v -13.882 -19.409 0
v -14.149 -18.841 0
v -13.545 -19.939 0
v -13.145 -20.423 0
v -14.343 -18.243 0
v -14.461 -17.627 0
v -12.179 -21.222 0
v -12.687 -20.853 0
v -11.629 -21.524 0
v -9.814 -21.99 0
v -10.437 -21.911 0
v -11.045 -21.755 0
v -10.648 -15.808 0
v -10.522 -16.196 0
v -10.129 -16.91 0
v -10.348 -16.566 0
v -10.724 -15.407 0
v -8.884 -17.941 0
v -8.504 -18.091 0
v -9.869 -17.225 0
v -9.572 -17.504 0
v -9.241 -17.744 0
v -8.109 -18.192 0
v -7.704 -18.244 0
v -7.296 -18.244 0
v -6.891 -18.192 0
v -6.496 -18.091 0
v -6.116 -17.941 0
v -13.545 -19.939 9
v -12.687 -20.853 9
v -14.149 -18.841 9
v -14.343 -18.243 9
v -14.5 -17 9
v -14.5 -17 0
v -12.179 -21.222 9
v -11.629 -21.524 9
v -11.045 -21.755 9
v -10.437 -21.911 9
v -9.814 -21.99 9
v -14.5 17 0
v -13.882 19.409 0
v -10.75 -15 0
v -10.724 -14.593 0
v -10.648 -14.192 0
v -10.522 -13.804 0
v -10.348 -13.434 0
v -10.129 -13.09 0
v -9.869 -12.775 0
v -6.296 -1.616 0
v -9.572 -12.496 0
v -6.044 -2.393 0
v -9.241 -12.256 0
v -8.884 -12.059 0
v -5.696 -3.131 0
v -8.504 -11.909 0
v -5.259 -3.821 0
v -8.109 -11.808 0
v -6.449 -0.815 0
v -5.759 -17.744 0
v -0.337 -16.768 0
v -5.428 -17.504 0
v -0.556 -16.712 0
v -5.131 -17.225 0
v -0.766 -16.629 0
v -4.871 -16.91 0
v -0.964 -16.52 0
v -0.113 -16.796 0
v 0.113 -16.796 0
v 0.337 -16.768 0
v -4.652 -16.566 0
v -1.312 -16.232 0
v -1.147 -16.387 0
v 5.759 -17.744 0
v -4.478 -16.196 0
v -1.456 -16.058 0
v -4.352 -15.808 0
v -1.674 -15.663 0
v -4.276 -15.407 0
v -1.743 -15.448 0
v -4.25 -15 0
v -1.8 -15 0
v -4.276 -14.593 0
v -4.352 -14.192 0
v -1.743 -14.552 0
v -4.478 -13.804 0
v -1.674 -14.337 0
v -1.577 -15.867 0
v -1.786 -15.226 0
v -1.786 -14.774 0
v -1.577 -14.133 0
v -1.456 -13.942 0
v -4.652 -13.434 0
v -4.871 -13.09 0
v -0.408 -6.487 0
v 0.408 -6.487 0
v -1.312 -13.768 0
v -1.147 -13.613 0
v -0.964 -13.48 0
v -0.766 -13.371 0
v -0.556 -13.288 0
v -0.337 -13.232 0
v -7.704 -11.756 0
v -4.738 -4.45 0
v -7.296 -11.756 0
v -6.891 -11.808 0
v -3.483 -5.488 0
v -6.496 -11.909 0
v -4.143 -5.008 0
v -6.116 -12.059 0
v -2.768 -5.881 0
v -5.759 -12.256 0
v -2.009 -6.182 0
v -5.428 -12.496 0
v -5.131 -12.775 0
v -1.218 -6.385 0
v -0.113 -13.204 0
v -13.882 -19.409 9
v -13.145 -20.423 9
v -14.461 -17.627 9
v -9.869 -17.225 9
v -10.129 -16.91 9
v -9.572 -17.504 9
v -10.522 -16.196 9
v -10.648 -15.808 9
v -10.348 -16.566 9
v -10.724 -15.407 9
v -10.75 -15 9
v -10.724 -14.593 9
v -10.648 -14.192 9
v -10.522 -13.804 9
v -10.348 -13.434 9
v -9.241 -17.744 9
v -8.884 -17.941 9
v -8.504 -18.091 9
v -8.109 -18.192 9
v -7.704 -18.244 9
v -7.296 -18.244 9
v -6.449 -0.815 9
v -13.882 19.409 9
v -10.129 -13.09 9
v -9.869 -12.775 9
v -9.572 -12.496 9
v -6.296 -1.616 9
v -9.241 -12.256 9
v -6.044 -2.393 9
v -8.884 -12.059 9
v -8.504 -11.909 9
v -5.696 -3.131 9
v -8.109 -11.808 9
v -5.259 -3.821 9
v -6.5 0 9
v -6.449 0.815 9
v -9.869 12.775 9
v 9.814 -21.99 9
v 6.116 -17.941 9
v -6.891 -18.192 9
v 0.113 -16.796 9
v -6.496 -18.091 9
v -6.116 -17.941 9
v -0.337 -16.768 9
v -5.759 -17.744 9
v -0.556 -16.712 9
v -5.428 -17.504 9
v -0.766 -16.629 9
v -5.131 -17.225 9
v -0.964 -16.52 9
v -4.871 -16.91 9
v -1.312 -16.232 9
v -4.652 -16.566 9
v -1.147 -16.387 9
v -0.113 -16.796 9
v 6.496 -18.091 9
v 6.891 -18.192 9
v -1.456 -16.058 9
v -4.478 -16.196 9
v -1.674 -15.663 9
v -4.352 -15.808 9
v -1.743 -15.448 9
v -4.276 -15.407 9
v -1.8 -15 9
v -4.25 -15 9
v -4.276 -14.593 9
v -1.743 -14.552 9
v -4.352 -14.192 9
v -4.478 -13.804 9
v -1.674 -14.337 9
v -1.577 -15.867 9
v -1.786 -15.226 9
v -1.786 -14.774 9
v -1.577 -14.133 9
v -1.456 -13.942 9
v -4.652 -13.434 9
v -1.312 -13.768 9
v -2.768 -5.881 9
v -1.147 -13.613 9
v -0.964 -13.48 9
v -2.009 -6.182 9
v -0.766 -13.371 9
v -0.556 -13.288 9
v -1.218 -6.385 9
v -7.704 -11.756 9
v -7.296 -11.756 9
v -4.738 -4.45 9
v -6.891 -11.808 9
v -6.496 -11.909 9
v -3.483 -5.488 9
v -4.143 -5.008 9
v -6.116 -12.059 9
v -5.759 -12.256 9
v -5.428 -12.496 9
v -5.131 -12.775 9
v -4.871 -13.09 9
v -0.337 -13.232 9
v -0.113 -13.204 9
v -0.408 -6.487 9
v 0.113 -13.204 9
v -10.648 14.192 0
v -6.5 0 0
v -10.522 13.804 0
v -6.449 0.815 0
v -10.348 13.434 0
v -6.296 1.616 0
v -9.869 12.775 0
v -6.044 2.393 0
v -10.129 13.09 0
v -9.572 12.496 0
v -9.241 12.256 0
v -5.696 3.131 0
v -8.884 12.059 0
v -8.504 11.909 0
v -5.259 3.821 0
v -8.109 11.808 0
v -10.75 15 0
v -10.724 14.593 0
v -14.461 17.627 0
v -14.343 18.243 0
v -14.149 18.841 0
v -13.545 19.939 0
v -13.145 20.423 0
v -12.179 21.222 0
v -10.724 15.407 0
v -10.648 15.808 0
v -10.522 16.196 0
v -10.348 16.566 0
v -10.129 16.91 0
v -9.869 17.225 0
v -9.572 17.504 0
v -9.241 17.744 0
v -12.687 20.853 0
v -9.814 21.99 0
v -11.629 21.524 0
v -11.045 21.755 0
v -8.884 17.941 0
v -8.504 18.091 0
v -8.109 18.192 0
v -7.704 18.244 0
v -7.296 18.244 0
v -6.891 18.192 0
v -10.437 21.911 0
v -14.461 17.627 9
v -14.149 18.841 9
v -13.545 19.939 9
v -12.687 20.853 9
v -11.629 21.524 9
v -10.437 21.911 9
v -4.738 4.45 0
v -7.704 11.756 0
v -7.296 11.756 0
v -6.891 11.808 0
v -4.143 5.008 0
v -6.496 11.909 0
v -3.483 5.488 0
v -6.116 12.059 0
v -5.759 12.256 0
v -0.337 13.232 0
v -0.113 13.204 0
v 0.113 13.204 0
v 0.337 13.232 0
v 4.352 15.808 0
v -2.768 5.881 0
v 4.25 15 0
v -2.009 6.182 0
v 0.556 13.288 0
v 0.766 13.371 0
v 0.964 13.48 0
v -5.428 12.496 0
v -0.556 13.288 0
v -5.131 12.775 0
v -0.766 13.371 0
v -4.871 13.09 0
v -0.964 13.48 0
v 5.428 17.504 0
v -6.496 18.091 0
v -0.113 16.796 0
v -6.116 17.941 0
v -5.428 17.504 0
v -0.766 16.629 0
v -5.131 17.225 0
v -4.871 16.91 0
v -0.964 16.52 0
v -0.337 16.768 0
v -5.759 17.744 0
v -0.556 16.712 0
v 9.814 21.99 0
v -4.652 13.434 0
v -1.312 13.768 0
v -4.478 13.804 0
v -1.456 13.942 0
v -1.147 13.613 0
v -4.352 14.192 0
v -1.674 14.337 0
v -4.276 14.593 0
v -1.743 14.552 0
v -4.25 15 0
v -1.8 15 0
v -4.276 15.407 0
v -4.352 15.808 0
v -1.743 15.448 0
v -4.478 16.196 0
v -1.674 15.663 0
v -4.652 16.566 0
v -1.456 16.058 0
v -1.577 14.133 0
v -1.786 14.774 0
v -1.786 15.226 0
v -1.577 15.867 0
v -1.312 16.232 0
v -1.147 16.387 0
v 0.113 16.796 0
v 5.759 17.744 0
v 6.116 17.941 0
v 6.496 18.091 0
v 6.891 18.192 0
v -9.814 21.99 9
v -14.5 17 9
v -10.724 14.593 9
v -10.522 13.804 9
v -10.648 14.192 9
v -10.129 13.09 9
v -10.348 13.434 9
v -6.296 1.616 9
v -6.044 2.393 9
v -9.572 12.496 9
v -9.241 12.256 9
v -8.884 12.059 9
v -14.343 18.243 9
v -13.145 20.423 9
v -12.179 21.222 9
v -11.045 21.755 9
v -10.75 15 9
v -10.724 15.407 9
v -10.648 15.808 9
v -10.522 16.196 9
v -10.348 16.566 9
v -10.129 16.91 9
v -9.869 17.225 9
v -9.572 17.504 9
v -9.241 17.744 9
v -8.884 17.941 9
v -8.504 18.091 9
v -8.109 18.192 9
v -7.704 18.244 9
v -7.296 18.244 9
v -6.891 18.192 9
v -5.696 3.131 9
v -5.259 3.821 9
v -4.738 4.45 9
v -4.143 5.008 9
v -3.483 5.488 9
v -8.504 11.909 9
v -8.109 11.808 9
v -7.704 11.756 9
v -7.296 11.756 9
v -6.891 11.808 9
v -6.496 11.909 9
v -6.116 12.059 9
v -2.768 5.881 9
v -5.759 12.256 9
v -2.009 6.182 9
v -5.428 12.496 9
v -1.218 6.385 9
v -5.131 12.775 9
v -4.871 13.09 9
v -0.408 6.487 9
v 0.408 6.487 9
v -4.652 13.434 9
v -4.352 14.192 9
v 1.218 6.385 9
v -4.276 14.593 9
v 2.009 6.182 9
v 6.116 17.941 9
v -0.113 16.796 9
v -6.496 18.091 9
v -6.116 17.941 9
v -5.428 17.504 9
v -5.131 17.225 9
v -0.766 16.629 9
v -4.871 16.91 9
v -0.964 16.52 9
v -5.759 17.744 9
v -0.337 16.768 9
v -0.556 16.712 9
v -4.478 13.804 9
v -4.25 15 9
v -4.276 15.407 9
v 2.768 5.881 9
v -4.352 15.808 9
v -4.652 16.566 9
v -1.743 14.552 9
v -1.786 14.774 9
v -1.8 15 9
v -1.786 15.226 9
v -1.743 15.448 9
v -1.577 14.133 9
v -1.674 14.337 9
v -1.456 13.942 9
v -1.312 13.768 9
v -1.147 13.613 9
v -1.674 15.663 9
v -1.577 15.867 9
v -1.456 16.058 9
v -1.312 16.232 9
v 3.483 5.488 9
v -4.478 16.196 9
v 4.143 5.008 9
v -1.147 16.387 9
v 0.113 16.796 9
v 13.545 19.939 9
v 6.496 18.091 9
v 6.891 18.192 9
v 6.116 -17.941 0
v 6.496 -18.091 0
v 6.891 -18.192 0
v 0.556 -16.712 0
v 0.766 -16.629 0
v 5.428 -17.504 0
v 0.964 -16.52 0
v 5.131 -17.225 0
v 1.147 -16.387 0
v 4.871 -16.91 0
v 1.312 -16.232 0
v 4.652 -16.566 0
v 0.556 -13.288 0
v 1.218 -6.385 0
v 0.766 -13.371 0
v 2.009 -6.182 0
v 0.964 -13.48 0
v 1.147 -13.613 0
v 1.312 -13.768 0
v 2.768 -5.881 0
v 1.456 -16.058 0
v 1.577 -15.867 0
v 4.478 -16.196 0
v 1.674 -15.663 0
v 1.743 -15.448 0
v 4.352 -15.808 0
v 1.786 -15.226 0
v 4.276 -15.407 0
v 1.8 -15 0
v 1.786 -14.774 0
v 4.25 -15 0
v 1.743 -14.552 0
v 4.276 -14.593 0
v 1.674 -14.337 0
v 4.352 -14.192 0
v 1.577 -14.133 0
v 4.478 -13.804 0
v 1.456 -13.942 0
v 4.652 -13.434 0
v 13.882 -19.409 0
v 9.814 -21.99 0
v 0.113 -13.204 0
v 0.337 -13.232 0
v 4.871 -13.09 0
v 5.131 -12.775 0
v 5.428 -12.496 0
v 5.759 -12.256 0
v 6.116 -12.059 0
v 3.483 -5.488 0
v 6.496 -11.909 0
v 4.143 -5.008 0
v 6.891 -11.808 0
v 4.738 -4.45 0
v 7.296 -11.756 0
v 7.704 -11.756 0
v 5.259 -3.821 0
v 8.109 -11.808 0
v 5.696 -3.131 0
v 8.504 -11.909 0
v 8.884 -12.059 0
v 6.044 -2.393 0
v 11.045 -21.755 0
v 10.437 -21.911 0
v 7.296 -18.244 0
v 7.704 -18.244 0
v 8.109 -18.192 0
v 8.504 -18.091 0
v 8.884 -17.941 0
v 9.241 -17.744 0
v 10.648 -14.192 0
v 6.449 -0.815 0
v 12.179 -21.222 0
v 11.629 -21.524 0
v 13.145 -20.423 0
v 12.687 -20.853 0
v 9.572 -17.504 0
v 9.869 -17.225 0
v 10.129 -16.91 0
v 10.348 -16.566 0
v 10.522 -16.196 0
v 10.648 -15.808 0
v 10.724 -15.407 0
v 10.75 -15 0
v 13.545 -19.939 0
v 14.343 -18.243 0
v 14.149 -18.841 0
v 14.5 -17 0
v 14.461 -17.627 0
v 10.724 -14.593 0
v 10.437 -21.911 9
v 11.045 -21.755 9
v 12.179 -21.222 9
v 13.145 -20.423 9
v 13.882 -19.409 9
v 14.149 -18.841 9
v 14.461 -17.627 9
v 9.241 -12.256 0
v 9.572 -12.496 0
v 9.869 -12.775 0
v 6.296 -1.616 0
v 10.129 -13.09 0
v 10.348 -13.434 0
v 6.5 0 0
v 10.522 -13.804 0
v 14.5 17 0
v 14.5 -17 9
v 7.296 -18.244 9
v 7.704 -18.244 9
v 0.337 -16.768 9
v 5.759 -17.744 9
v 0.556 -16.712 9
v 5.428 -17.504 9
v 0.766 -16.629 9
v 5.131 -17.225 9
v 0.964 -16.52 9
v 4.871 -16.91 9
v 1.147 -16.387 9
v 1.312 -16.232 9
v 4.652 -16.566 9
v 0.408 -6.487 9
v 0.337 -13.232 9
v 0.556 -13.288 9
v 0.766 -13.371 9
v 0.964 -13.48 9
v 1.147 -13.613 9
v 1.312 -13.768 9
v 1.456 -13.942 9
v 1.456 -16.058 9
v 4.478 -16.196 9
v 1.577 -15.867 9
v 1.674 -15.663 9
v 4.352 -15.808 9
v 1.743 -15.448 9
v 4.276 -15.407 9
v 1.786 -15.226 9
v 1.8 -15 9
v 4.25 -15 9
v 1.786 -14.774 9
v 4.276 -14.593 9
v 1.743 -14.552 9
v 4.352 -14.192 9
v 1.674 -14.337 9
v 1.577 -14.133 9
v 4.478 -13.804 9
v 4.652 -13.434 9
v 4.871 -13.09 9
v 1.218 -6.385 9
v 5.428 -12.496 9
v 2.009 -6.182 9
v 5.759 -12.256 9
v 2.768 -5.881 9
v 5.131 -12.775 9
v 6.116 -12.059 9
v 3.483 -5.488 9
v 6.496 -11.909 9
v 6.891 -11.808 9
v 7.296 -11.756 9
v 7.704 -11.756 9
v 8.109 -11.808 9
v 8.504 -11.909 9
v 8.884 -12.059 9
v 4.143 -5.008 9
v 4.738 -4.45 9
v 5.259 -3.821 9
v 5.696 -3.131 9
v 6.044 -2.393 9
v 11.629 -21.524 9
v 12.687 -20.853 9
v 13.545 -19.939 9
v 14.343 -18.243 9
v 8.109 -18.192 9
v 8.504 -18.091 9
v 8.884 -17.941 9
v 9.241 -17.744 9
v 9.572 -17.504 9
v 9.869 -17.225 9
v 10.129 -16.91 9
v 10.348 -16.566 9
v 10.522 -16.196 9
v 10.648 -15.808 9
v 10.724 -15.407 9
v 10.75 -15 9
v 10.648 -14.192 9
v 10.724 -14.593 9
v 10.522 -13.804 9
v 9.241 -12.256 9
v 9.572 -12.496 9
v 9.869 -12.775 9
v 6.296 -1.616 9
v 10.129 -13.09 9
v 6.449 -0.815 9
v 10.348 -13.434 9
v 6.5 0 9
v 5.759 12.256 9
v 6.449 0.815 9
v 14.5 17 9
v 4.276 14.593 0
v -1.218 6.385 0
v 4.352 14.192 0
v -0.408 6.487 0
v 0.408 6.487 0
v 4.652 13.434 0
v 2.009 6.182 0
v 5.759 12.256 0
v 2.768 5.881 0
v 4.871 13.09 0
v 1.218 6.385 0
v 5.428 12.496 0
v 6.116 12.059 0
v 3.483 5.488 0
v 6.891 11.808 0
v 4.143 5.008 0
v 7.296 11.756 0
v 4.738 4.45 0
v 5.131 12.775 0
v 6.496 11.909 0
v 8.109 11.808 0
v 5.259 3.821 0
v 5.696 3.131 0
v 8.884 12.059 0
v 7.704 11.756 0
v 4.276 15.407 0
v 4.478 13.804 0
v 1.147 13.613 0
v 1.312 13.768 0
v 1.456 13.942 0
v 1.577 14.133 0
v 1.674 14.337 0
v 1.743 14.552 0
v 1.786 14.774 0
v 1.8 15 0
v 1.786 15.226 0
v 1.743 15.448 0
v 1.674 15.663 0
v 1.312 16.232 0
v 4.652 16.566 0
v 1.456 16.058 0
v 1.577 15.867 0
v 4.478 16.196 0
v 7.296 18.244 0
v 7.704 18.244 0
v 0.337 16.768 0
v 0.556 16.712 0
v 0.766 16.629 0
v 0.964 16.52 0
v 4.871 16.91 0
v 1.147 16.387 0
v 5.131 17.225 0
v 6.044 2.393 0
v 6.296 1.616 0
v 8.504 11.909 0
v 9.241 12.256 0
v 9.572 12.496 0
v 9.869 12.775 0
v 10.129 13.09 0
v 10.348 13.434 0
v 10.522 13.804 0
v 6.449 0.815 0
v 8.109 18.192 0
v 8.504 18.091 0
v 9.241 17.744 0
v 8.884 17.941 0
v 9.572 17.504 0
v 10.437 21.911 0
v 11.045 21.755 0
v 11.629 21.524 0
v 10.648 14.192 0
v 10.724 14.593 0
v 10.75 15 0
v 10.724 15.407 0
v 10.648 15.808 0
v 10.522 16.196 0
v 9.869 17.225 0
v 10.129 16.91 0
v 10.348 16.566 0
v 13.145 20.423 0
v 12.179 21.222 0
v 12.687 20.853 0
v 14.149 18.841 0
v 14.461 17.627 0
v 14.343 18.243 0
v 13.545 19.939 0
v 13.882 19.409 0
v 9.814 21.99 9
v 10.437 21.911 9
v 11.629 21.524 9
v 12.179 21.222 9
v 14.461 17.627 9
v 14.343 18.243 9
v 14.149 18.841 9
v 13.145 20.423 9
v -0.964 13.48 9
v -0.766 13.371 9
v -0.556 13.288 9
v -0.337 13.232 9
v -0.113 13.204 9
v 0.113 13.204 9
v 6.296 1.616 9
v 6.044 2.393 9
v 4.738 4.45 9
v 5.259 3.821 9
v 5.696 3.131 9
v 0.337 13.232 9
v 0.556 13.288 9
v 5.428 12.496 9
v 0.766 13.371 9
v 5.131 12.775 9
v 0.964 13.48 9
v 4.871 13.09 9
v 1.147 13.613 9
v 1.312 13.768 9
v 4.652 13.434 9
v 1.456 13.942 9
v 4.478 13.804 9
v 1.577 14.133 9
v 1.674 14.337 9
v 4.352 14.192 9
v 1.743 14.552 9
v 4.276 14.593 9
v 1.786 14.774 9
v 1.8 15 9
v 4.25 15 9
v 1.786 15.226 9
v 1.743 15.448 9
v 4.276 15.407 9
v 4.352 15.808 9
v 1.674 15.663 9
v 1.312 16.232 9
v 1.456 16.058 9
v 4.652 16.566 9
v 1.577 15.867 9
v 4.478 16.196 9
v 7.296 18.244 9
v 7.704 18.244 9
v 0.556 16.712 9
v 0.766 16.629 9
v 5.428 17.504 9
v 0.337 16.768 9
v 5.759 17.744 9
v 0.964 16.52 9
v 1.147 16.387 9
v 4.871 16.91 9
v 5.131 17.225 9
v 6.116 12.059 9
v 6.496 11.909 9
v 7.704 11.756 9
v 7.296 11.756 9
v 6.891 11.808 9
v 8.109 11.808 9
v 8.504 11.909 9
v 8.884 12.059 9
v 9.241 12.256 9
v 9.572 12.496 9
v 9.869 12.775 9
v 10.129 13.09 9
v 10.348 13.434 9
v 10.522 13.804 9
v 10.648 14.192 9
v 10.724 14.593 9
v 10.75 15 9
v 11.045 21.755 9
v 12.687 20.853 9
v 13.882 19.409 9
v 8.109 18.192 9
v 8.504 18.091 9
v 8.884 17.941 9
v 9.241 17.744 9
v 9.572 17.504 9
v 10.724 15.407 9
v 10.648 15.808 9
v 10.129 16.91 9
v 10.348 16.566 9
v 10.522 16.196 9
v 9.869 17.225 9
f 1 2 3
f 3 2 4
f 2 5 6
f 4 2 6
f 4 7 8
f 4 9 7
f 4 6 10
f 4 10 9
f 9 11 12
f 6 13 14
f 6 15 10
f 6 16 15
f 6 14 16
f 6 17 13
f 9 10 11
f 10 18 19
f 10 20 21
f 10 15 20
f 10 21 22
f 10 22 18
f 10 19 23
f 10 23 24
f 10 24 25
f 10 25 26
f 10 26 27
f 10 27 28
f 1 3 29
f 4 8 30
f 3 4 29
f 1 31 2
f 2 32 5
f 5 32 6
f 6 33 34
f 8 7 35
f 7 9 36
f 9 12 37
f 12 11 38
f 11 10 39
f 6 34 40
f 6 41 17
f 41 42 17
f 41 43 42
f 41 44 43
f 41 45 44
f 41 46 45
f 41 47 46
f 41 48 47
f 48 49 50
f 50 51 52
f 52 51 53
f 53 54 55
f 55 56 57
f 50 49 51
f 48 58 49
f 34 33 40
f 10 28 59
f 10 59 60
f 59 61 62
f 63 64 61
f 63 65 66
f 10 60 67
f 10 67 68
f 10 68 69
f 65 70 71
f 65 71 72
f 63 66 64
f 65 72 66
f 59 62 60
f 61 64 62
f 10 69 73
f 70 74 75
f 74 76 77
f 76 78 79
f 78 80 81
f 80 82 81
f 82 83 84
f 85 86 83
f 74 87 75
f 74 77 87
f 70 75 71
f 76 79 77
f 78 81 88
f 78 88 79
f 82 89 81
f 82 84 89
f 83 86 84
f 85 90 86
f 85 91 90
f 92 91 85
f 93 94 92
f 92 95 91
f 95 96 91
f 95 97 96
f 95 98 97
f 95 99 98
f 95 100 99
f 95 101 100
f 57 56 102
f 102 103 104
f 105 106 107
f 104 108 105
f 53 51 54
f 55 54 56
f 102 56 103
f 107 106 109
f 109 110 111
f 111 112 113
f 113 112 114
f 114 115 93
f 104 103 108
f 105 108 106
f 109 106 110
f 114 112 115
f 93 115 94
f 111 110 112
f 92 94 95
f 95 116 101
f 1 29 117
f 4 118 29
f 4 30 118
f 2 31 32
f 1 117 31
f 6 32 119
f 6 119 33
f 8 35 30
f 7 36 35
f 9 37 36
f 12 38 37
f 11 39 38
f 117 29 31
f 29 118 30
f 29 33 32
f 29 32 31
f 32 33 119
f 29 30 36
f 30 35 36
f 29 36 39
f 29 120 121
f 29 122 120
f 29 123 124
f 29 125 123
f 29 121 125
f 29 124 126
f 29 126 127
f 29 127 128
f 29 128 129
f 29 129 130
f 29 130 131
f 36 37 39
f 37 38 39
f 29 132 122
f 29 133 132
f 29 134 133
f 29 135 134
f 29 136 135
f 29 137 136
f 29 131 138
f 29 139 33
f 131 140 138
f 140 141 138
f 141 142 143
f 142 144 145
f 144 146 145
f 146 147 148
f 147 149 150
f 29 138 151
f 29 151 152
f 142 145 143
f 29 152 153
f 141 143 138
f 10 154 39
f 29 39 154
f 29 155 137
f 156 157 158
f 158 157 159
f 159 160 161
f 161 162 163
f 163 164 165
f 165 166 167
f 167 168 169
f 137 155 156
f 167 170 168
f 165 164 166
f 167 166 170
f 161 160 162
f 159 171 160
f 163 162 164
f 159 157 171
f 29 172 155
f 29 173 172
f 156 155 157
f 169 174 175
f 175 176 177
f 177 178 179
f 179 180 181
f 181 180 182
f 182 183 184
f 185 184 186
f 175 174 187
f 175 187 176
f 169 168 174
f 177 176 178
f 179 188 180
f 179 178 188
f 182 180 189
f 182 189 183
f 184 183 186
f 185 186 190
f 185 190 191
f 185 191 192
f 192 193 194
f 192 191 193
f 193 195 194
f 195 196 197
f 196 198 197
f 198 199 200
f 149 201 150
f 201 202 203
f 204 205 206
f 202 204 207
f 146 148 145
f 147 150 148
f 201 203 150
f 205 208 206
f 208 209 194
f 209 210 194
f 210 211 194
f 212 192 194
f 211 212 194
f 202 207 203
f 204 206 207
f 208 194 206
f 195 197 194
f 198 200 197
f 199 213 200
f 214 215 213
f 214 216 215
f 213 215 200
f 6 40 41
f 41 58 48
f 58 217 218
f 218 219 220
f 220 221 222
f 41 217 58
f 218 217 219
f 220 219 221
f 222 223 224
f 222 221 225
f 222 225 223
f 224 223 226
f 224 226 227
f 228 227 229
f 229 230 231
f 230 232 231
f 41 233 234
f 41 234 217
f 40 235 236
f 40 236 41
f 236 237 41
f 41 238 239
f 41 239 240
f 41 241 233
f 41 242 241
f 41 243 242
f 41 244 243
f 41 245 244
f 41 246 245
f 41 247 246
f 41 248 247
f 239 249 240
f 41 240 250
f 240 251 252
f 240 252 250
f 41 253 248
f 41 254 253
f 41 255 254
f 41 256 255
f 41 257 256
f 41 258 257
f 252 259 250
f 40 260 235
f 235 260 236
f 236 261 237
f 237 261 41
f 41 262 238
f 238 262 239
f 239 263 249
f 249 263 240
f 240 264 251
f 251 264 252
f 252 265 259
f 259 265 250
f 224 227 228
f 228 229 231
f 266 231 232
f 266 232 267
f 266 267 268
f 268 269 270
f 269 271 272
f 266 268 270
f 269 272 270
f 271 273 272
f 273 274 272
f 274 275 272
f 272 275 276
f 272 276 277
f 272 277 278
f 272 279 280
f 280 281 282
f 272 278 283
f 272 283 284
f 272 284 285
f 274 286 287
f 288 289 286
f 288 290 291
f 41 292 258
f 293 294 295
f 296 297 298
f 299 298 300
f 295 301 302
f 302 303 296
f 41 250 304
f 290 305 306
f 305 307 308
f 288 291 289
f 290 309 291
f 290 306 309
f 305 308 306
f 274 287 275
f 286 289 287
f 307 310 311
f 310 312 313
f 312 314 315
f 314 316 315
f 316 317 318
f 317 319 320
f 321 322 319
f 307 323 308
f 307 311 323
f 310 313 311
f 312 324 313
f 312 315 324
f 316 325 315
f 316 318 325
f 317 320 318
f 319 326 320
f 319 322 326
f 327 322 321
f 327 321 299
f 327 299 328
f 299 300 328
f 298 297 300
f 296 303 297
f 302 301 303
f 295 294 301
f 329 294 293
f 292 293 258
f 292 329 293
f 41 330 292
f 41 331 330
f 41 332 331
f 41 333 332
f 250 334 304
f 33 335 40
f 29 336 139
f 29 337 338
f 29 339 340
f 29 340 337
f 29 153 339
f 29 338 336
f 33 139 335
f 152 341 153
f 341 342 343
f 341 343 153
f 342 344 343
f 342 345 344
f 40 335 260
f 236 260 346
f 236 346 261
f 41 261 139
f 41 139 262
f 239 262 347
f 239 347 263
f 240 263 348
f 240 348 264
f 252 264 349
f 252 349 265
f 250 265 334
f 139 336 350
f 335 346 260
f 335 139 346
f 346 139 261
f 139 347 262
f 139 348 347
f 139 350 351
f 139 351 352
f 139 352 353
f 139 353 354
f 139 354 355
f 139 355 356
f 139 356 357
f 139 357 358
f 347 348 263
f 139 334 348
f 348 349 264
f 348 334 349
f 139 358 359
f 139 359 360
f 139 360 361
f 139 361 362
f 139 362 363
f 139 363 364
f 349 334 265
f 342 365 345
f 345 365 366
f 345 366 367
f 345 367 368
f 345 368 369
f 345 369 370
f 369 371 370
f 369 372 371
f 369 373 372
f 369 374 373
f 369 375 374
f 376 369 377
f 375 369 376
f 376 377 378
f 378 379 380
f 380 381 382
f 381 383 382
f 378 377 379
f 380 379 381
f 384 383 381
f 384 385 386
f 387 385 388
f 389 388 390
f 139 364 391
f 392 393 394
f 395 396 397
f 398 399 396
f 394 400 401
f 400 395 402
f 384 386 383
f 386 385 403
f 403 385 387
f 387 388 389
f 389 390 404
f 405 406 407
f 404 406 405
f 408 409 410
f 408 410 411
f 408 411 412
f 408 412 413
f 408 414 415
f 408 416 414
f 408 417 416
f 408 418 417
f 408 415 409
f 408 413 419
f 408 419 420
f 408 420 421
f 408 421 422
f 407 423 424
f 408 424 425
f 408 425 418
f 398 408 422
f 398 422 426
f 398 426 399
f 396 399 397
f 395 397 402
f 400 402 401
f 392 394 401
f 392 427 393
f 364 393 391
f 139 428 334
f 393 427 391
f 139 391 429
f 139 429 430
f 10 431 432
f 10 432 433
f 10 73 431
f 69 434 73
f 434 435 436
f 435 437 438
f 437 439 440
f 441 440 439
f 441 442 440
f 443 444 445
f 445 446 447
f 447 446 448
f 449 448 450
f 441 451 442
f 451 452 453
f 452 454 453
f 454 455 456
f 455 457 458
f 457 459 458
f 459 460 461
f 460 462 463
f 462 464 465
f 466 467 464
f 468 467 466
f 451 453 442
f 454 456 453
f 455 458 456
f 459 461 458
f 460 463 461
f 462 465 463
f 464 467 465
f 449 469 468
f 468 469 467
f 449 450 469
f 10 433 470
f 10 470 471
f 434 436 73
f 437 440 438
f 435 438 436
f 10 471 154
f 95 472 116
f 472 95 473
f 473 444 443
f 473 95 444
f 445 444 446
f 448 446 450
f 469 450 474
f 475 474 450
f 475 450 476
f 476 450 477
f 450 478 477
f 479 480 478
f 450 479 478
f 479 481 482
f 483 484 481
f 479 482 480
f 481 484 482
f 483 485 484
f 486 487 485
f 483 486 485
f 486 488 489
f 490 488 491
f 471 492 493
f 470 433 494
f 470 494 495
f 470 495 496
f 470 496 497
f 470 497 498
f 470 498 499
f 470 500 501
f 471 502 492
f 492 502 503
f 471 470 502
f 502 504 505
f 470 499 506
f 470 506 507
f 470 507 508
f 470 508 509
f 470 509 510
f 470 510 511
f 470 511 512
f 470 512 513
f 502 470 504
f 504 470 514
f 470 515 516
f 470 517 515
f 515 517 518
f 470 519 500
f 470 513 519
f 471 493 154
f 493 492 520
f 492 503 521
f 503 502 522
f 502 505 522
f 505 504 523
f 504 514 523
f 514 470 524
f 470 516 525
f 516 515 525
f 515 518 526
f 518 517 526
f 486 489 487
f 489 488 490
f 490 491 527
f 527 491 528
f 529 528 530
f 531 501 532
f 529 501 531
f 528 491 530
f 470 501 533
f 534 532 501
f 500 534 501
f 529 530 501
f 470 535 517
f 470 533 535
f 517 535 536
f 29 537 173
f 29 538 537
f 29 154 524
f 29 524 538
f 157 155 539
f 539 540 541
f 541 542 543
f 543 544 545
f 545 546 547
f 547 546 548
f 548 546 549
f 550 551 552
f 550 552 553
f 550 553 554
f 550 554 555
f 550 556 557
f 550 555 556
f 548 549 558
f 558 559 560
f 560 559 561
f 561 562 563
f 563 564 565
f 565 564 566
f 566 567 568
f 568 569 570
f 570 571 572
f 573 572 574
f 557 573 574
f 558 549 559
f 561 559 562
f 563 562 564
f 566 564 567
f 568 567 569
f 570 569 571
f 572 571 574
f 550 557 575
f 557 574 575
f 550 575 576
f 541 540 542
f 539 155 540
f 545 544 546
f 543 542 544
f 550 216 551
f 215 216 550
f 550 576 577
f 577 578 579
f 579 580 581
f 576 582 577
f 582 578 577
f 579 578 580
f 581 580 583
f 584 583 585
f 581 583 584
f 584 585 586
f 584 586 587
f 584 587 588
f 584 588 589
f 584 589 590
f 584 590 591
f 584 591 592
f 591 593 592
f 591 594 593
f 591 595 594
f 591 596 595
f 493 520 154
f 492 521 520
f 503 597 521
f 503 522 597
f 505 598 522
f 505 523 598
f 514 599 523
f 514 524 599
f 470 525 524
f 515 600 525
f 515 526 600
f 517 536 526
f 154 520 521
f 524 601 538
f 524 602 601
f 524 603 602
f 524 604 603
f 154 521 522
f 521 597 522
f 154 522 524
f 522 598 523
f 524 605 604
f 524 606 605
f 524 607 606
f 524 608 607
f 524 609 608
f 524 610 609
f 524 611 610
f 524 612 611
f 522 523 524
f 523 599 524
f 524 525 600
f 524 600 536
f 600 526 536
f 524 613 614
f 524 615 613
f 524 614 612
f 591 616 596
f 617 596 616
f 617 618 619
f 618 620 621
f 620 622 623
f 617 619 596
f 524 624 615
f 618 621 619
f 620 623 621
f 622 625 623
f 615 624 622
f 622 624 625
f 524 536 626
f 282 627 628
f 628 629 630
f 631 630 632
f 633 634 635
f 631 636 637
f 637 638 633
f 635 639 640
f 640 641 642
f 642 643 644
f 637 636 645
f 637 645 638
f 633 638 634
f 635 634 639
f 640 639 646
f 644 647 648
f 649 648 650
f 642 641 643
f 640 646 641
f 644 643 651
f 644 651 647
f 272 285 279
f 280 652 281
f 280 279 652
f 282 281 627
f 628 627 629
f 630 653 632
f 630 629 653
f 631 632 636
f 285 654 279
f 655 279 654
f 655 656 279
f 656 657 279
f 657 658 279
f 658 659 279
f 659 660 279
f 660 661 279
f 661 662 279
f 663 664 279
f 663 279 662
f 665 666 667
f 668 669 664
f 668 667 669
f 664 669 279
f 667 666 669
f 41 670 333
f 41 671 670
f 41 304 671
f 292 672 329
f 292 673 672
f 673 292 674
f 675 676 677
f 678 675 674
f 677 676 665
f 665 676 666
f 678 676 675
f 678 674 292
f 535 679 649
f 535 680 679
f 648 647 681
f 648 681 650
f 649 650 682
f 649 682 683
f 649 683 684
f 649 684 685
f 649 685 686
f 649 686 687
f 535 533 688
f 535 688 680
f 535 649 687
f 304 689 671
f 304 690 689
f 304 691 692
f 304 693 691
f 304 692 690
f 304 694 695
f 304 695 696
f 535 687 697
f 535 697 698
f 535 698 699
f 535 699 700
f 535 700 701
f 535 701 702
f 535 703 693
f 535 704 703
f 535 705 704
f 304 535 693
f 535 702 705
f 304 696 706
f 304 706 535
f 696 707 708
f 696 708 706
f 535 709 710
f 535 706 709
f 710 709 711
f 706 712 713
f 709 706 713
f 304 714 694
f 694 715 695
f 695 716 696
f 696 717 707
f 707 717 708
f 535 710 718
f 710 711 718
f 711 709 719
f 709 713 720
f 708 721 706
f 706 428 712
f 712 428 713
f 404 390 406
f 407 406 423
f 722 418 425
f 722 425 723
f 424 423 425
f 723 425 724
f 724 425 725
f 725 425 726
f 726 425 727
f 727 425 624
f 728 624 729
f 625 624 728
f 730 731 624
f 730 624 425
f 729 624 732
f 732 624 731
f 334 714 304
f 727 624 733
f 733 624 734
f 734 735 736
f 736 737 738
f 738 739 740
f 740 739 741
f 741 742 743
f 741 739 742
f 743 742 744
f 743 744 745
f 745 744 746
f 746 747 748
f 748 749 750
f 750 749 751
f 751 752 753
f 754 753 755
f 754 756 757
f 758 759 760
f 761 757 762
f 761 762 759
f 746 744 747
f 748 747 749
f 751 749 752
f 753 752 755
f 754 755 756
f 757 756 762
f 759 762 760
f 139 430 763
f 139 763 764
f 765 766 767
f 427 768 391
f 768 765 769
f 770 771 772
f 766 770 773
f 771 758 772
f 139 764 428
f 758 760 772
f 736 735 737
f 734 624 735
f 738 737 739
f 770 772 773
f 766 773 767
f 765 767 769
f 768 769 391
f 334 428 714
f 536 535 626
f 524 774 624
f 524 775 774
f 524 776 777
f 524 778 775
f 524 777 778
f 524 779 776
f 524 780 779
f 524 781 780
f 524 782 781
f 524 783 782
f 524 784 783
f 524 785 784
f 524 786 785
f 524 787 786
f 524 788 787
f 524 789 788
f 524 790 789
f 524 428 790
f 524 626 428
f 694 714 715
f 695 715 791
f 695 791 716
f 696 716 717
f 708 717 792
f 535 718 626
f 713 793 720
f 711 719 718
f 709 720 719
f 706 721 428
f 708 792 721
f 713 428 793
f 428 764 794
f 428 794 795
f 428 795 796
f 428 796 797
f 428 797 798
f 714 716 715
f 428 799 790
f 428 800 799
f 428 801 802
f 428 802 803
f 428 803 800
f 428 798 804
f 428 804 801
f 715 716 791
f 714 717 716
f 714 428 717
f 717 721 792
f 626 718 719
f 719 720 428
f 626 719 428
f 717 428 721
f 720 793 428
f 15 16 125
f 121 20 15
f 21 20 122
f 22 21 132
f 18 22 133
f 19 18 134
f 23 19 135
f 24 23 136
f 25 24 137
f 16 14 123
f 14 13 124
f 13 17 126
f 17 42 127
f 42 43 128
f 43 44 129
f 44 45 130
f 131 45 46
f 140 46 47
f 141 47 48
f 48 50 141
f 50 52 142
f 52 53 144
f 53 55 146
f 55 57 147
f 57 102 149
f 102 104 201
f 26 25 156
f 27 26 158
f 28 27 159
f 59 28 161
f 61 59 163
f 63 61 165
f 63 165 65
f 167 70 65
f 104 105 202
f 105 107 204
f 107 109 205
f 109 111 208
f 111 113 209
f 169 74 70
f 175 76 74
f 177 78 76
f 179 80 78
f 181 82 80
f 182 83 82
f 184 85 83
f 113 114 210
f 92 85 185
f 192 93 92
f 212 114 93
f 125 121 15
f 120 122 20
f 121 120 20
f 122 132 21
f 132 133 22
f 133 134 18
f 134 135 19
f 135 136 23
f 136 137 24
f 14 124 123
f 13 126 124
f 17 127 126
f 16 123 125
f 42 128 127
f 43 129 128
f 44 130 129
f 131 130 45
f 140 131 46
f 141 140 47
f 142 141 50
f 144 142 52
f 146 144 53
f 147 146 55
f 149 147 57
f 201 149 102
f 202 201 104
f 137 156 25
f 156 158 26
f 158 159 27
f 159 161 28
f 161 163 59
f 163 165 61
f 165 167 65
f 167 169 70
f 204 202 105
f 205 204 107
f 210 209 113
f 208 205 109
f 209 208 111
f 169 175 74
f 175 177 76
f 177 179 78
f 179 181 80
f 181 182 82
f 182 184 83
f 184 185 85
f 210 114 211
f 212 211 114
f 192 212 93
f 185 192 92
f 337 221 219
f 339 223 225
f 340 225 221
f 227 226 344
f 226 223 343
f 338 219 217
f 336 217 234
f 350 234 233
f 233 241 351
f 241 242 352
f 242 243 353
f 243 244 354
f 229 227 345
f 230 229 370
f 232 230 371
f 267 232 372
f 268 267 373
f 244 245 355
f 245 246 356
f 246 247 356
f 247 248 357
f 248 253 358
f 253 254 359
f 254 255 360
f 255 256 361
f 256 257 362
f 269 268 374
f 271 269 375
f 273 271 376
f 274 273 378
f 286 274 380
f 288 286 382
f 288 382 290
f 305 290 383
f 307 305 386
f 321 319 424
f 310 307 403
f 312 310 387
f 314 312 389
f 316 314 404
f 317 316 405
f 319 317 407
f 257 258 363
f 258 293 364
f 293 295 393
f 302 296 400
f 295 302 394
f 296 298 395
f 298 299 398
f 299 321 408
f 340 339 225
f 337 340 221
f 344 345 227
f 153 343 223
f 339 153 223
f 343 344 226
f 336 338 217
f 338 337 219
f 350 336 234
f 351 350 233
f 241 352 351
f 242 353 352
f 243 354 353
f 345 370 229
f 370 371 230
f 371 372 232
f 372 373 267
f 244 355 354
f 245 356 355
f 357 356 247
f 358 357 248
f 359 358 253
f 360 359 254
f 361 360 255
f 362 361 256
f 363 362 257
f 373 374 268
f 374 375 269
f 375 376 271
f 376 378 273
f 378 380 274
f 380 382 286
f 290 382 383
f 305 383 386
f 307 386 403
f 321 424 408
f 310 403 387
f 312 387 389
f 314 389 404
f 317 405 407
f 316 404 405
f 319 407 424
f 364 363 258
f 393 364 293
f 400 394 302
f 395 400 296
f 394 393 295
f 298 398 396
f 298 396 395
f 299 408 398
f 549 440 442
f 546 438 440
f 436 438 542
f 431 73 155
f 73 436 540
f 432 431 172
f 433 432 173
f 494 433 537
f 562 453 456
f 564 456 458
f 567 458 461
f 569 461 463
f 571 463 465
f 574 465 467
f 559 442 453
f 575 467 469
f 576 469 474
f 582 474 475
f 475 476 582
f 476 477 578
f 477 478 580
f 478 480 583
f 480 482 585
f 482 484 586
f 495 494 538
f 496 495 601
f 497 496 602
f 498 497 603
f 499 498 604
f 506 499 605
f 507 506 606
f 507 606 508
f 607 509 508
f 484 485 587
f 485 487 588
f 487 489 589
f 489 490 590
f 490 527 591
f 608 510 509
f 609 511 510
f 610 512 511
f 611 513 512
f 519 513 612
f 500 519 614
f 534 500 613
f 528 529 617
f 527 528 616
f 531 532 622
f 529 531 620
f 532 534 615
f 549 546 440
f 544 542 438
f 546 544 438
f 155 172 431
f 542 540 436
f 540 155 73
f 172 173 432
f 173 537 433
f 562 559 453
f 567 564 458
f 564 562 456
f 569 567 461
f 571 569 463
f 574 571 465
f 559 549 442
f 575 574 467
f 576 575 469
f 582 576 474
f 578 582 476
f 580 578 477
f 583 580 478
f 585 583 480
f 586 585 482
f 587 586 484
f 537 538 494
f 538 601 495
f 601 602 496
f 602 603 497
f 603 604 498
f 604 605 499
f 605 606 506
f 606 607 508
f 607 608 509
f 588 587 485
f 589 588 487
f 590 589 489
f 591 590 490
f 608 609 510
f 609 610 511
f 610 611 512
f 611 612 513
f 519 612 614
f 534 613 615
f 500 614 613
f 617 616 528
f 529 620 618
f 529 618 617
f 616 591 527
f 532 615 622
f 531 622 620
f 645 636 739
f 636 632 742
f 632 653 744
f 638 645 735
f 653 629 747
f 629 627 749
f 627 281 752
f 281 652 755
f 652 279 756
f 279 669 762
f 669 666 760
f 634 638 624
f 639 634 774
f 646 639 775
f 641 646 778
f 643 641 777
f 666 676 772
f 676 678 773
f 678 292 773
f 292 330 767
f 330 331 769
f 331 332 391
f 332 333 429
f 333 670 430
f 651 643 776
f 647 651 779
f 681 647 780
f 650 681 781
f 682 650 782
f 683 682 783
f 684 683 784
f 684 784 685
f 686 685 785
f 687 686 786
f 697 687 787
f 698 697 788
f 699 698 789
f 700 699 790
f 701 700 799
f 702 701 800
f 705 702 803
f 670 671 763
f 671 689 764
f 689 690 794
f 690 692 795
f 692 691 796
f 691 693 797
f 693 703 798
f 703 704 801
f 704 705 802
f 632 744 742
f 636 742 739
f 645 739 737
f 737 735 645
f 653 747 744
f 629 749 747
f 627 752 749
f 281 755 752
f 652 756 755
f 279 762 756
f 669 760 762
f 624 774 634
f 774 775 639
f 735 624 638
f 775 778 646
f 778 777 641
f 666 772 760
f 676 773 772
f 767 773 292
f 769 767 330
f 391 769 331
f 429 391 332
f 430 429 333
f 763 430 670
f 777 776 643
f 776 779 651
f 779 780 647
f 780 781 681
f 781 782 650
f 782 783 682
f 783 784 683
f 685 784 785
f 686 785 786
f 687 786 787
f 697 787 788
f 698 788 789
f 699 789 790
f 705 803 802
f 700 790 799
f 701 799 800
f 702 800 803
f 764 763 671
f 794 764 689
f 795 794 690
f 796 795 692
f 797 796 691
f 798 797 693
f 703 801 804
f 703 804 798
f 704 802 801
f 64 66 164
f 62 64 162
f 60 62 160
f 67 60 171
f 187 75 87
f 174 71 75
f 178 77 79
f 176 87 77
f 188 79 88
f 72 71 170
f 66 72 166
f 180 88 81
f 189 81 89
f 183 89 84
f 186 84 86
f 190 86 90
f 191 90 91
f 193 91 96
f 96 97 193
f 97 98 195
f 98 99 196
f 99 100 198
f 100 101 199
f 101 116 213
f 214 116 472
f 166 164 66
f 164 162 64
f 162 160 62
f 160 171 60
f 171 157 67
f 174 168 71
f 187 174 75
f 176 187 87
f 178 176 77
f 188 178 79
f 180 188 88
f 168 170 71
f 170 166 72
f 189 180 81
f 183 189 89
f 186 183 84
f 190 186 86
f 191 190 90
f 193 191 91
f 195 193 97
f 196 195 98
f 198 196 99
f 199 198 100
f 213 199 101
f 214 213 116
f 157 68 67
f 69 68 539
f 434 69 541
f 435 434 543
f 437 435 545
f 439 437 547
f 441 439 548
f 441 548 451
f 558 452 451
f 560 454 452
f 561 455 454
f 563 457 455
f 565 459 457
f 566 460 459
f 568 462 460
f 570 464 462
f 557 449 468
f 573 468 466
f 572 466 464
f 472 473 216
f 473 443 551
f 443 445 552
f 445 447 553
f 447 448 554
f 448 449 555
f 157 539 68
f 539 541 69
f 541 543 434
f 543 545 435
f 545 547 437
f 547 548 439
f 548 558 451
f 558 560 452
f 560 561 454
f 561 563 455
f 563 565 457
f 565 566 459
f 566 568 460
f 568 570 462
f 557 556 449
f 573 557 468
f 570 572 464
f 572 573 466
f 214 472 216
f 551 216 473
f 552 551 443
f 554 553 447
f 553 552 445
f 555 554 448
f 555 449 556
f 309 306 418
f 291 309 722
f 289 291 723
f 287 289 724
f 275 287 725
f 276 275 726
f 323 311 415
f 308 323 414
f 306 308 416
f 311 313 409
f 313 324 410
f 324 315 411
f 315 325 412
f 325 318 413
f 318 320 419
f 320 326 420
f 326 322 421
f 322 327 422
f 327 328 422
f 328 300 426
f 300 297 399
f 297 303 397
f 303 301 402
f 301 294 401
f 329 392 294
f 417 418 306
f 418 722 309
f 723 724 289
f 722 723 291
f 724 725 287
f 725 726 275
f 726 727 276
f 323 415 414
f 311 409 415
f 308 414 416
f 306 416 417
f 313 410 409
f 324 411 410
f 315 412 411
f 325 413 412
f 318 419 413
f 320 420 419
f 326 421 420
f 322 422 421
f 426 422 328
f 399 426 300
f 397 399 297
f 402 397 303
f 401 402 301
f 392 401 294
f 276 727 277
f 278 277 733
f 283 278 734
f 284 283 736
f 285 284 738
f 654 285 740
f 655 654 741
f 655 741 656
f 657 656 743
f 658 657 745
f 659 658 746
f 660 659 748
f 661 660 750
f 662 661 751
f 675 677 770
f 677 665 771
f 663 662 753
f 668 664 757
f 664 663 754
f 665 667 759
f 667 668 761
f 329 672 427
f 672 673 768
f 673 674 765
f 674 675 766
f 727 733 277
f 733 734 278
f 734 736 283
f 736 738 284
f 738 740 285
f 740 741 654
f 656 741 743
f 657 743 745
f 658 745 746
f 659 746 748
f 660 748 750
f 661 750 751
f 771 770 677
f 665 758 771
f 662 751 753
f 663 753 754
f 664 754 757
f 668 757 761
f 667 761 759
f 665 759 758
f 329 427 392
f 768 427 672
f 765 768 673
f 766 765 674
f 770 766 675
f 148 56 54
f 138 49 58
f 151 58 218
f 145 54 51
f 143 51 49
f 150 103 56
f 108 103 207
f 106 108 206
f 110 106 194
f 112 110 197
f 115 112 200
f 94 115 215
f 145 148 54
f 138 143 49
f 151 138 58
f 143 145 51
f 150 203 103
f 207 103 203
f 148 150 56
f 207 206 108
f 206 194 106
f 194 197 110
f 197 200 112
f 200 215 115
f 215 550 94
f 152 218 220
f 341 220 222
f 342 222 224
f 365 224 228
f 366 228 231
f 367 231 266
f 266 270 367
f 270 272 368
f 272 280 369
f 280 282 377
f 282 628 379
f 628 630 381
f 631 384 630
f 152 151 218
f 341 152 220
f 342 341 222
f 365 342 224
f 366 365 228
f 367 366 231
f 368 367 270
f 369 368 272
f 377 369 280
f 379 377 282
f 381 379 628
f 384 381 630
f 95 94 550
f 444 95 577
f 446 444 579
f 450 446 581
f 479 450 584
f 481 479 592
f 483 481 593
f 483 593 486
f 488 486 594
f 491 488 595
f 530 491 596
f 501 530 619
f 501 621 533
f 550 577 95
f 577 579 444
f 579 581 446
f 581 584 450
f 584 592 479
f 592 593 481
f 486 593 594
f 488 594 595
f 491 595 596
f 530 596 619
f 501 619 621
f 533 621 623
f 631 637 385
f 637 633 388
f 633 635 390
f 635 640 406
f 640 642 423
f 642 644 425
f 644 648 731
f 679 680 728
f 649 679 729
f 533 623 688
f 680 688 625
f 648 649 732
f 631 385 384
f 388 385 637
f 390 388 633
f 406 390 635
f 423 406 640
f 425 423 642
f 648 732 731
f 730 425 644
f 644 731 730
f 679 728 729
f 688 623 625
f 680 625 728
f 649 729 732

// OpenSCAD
$fn = 50;

difference() {
	union() {
		hull() {
			translate(v = [-9.5, 17.0, 0]) {
				cylinder(h = 9, r = 5);
			}
			translate(v = [9.5, 17.0, 0]) {
				cylinder(h = 9, r = 5);
			}
			translate(v = [-9.5, -17.0, 0]) {
				cylinder(h = 9, r = 5);
			}
			translate(v = [9.5, -17.0, 0]) {
				cylinder(h = 9, r = 5);
			}
		}
	}
	union() {
		translate(v = [-7.5, -15.0, 0]) {
			cylinder(h = 9, r = 3.25);
		}
		translate(v = [-7.5, 15.0, 0]) {
			cylinder(h = 9, r = 3.25);
		}
		translate(v = [7.5, -15.0, 0]) {
			cylinder(h = 9, r = 3.25);
		}
		translate(v = [7.5, 15.0, 0]) {
			cylinder(h = 9, r = 3.25);
		}
		translate(v = [0.0, -15.0, 0]) {
			cylinder(h = 9, r = 1.8);
		}
		translate(v = [0.0, 15.0, 0]) {
			cylinder(h = 9, r = 1.8);
		}
		cylinder(h = 9, r = 6.5);
	}
}
